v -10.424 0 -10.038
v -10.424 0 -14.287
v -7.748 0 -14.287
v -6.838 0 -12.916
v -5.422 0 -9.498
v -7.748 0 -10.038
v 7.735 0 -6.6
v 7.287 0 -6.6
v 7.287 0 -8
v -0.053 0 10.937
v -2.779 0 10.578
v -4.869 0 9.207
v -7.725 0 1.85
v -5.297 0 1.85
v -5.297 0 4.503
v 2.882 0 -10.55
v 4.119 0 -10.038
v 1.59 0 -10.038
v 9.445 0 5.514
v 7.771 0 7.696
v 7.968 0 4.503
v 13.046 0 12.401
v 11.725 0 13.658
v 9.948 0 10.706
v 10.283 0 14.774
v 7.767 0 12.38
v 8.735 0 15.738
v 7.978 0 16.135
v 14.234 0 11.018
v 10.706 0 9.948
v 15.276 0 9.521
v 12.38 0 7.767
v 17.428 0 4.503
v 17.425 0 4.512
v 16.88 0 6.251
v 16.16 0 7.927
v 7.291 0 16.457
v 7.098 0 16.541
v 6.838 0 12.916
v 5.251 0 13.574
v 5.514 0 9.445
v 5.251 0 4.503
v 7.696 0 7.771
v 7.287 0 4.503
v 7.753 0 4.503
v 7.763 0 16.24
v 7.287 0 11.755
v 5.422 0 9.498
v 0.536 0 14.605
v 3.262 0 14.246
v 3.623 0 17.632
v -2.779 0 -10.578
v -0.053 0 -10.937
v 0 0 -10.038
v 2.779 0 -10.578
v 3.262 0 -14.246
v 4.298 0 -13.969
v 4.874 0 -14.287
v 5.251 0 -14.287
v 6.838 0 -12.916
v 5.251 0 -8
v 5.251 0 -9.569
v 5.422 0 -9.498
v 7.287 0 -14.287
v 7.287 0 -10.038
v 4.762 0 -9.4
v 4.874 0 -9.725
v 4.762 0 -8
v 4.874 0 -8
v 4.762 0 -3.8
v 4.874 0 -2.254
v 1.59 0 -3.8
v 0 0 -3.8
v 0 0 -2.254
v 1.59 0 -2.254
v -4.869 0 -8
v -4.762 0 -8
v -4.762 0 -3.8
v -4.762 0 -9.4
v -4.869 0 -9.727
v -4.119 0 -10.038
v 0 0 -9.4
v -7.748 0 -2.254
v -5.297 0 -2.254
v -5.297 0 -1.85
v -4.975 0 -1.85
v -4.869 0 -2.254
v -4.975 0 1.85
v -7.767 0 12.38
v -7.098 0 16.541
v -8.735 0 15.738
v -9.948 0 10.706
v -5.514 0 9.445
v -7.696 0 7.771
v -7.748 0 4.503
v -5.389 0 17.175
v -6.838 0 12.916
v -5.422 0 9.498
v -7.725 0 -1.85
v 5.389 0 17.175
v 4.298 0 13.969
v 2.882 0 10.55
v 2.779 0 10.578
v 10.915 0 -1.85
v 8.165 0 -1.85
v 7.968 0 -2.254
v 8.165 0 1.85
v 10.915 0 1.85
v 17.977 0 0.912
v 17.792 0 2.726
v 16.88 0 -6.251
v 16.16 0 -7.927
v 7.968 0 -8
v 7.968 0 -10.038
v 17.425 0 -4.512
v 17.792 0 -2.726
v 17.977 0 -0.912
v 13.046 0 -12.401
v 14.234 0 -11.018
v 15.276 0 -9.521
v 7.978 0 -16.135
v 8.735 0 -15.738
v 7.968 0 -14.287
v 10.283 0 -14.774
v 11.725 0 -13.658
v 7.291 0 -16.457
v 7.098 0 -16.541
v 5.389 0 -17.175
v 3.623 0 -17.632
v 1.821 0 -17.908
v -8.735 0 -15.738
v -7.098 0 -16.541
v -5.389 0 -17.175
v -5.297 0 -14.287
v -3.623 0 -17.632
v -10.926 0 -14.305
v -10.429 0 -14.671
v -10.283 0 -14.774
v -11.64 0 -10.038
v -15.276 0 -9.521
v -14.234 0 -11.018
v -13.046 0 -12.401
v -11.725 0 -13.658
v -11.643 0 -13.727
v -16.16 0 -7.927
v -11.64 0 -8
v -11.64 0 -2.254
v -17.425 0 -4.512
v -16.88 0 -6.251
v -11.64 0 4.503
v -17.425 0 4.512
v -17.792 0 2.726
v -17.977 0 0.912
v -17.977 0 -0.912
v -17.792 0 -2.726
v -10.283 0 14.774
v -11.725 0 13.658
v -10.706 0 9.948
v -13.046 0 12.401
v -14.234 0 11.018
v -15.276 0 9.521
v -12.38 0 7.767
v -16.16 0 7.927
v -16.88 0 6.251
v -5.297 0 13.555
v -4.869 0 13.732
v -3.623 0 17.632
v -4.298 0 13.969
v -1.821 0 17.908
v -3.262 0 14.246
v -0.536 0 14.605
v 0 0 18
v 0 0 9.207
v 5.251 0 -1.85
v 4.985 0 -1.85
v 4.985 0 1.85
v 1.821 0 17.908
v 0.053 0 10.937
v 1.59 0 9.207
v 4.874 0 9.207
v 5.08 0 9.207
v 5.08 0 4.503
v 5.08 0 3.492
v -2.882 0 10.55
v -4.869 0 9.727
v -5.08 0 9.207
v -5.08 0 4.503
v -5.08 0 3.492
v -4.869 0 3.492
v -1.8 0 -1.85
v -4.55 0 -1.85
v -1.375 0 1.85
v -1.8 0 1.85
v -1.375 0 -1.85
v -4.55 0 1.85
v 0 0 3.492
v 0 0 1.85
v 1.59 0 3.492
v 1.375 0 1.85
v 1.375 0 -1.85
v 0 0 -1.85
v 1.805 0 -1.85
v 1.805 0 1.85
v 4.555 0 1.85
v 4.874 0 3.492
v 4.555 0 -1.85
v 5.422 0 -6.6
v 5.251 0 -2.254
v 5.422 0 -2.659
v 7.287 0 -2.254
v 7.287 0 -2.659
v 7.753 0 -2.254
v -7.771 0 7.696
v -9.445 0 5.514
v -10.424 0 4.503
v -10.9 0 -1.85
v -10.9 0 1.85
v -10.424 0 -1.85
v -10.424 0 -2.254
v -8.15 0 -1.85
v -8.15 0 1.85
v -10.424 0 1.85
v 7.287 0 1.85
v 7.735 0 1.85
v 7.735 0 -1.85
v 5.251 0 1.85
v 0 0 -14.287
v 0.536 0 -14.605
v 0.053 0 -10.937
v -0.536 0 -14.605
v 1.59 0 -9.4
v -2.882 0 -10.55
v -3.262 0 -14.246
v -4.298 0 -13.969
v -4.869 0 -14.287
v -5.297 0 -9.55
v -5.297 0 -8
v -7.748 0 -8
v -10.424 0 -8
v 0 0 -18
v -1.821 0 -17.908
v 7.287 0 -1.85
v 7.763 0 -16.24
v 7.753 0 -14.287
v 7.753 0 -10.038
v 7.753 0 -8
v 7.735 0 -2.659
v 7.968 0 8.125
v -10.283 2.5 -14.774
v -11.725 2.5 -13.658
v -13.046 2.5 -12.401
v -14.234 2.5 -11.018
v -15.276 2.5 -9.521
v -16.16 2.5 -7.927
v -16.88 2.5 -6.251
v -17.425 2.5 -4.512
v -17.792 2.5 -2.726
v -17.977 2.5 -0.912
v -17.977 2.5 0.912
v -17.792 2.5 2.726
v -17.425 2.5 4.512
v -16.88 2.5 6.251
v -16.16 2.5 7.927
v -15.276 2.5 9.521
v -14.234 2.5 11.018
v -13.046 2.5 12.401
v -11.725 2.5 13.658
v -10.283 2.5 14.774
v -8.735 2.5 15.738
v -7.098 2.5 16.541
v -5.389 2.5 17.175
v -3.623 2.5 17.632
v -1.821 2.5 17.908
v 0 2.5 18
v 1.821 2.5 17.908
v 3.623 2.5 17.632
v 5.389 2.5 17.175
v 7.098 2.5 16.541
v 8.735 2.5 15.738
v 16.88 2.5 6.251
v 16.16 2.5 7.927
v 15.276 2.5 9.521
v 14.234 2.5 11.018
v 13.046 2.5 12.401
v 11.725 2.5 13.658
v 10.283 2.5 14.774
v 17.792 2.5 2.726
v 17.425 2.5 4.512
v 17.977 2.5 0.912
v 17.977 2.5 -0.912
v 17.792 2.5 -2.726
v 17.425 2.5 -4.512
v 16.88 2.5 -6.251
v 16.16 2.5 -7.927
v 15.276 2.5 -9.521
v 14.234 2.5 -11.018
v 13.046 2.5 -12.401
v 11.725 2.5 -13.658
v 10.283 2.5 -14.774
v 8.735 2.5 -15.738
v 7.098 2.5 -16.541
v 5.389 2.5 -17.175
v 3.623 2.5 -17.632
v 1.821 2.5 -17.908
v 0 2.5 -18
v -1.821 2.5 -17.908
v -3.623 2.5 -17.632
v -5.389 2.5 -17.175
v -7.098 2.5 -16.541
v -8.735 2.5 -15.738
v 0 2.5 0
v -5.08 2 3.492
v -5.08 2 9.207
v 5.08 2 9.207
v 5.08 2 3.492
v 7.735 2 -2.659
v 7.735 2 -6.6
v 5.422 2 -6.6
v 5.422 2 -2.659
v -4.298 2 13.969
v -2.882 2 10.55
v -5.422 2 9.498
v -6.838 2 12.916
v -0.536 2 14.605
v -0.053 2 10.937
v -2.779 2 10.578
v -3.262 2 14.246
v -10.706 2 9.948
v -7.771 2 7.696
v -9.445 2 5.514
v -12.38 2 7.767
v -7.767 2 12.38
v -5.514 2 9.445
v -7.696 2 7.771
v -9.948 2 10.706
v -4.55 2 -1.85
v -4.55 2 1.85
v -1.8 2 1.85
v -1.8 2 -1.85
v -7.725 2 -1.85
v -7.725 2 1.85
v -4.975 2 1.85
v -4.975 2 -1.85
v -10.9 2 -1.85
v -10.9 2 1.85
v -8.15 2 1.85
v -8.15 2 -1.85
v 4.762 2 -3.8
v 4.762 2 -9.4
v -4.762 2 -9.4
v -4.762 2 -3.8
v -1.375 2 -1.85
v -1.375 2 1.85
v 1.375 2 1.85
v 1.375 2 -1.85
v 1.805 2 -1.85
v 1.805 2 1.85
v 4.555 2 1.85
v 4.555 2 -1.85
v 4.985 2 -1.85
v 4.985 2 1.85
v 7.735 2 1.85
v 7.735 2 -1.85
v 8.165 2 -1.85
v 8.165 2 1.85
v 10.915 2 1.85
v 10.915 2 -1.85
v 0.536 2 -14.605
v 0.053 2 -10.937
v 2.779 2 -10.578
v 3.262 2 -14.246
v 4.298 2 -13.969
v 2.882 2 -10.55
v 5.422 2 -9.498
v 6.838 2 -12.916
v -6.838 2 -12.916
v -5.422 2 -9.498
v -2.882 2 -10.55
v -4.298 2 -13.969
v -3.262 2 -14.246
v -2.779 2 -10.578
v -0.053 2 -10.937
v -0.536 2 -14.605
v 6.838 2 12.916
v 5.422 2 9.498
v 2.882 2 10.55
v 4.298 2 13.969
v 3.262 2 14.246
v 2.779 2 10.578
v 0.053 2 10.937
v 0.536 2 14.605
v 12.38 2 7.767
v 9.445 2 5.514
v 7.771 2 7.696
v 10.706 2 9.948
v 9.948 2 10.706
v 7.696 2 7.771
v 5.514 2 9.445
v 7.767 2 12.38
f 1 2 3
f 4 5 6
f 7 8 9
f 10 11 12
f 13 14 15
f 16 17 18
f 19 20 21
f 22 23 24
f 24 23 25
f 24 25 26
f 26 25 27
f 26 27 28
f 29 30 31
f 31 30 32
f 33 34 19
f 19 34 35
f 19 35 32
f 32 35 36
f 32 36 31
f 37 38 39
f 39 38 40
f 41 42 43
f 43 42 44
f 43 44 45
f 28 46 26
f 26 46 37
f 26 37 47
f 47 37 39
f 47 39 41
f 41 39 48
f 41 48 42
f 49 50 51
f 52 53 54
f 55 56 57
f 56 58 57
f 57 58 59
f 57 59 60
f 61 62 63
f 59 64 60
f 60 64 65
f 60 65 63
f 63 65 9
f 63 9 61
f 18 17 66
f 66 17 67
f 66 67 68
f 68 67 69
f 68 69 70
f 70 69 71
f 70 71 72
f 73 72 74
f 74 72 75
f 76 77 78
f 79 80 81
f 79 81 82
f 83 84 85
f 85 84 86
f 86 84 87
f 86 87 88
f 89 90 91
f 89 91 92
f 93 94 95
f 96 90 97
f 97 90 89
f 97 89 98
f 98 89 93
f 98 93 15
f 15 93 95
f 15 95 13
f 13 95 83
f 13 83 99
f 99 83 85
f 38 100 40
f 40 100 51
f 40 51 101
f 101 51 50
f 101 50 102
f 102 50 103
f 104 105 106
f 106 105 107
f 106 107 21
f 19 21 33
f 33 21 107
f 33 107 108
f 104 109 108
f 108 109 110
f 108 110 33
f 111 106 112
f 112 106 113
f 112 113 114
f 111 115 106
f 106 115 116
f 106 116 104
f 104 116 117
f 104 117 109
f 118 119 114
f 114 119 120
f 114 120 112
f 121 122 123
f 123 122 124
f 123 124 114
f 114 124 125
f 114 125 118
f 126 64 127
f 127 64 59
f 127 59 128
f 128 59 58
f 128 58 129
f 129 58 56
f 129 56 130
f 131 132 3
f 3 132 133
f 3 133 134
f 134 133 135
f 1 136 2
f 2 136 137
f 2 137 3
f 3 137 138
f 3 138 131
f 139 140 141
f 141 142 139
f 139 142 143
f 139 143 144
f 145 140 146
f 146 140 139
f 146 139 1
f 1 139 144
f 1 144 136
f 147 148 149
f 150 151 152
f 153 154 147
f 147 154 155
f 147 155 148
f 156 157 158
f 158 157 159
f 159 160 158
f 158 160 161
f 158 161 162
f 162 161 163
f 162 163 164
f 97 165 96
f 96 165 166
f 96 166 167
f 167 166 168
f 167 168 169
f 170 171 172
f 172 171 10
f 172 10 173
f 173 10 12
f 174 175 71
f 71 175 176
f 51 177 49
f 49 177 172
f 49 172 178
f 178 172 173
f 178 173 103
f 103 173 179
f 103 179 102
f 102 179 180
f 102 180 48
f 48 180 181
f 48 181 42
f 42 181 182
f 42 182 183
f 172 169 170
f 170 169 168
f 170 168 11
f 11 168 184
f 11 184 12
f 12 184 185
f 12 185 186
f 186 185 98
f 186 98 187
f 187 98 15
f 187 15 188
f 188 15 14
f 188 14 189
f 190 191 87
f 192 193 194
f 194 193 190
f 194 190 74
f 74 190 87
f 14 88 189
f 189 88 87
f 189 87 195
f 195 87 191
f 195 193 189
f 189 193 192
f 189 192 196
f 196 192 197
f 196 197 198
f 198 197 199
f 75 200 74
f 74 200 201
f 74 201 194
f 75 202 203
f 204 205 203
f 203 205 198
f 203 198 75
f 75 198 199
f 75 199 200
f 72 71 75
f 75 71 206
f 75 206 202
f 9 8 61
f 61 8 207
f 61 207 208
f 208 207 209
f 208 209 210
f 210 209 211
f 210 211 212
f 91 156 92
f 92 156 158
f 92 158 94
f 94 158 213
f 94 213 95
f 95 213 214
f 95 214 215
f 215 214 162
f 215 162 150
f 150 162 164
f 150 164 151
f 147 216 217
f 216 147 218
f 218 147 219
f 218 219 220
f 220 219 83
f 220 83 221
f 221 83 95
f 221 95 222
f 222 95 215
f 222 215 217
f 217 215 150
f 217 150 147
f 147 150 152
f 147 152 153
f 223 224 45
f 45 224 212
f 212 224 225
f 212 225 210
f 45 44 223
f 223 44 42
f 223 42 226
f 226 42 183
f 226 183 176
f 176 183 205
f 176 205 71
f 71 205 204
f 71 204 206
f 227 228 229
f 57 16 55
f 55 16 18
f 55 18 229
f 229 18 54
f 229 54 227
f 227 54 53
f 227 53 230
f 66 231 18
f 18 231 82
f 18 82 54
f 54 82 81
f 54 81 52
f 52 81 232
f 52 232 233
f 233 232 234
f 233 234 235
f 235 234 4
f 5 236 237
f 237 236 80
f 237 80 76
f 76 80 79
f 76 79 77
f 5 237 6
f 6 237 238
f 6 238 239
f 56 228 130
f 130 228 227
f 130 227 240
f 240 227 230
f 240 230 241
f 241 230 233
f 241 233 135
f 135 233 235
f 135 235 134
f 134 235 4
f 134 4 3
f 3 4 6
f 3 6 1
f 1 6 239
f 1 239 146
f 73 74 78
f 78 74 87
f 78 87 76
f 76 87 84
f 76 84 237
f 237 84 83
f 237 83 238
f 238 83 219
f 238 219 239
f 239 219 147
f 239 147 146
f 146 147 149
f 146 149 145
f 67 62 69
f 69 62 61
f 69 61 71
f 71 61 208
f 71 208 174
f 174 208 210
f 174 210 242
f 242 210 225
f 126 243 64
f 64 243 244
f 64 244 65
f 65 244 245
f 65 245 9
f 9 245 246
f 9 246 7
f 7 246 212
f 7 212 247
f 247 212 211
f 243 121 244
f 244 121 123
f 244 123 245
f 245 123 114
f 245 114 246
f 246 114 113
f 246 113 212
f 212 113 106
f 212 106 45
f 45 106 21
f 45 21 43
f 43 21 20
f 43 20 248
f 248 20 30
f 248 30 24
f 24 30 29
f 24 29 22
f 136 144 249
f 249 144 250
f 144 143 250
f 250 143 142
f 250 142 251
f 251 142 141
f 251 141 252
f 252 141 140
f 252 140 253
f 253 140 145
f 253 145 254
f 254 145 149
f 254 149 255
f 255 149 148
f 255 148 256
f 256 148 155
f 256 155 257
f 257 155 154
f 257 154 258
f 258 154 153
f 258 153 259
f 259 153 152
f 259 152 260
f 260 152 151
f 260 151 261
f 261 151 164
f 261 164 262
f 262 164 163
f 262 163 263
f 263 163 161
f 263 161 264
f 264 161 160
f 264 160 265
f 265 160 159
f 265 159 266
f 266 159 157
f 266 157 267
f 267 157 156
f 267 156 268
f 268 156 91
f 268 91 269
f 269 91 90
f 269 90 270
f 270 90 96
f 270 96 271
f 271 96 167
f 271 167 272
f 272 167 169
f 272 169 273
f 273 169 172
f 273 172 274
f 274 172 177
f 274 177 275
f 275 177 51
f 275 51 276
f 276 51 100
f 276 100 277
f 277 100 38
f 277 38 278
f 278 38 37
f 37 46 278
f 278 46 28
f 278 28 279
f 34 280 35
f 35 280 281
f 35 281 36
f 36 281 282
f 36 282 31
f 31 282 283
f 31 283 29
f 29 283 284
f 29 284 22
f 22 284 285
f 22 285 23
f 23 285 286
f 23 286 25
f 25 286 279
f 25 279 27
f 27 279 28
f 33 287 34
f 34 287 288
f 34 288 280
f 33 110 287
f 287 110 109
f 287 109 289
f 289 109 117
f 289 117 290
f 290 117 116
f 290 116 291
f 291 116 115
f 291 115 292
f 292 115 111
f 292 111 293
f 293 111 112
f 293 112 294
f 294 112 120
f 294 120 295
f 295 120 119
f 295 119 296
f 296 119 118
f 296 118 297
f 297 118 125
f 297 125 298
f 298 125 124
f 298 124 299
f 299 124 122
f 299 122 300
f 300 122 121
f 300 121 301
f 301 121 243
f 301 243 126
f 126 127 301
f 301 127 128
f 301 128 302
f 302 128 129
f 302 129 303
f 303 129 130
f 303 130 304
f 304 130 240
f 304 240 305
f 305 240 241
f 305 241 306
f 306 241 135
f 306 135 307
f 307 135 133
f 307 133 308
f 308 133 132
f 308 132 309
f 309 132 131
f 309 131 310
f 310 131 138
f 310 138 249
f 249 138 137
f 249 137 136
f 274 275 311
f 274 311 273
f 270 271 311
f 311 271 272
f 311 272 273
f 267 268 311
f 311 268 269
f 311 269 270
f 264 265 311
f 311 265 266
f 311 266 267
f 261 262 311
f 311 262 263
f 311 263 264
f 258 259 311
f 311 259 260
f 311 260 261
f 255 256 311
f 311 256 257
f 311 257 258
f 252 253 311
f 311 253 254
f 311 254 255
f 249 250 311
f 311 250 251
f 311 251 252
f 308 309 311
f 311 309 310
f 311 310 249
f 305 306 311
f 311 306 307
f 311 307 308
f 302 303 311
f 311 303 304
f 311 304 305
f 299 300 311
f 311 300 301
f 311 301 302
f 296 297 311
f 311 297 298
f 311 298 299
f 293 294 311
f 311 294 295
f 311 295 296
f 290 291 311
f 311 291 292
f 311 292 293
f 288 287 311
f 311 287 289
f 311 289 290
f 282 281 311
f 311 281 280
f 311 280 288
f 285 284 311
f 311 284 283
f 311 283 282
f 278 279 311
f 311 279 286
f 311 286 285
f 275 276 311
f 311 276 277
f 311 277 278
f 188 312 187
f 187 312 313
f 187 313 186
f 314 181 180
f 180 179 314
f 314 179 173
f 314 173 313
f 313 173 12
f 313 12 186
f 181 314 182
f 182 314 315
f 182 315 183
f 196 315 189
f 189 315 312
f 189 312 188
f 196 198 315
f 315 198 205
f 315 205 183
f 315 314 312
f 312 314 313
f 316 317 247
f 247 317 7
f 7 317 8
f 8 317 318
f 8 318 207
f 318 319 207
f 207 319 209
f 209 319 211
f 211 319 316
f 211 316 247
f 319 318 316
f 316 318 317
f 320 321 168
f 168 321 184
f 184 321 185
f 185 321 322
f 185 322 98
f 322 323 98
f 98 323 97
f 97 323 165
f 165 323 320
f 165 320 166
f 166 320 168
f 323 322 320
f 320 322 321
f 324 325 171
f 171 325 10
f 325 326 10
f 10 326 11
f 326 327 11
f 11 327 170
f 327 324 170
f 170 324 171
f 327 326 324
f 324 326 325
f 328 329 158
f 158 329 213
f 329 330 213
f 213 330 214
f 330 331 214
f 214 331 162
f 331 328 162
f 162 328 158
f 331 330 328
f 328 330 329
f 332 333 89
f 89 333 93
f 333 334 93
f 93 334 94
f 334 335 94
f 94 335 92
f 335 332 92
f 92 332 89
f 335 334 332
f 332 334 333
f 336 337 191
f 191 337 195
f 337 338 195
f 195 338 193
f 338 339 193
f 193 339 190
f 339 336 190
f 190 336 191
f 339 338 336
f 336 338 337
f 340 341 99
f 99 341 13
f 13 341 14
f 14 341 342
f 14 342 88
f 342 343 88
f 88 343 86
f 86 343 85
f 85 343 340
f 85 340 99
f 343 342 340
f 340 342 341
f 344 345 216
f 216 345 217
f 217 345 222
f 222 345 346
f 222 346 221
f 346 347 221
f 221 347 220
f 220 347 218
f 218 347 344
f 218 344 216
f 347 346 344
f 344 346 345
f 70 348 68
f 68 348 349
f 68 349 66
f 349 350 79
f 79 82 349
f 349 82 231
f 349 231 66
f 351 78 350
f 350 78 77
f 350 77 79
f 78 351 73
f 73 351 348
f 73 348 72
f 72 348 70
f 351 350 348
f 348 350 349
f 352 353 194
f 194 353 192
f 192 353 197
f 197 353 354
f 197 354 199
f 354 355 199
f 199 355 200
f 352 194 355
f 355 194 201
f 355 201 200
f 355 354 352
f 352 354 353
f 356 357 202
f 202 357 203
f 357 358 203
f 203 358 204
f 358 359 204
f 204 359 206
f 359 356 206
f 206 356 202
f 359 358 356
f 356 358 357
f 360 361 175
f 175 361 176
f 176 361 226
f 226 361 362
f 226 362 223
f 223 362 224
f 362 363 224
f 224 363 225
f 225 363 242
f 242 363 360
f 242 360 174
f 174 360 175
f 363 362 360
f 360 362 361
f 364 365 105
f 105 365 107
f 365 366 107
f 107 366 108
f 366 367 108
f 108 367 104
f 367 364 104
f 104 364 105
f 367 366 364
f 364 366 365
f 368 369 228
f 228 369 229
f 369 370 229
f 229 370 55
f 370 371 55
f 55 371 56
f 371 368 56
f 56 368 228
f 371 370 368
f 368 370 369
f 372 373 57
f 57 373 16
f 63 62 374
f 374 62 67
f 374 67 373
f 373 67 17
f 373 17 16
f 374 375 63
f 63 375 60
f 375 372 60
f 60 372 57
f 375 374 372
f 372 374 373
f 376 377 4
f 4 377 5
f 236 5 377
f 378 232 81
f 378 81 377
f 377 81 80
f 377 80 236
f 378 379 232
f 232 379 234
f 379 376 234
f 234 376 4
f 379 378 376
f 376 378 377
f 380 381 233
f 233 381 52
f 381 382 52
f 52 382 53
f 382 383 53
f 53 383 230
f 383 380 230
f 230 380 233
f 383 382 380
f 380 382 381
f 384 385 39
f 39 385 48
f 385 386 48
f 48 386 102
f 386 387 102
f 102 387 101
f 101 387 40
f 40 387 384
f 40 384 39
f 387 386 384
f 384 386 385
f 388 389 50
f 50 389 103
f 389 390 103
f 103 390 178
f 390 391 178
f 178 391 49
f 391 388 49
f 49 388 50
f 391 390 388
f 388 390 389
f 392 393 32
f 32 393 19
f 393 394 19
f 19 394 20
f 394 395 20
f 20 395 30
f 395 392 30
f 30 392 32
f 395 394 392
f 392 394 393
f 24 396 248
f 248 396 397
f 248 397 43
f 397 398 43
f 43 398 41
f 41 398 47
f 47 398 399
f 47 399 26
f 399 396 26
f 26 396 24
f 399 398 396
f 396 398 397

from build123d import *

# Parameters (mm, degrees)
SKETCH1_R                = 18
BOSS_EXTRUDE1_DEPTH      = 2.5
CUT_EXTRUDE4_OUTLINE_W   = 10.16
CUT_EXTRUDE4_OUTLINE_H   = 5.715
CUT_EXTRUDE4_OUTLINE_W_2 = 2.312550402
CUT_EXTRUDE4_OUTLINE_H_2 = 3.94124845
CUT_EXTRUDE4_OUTLINE_W_3 = 2.75
CUT_EXTRUDE4_OUTLINE_H_3 = 3.7
CUT_EXTRUDE4_OUTLINE_W_4 = 9.525
CUT_EXTRUDE4_OUTLINE_H_4 = 5.6
CUT_EXTRUDE4_DEPTH       = 2


# Read off the part's stored shape, not the designer's step: Cut-Extrude4
with BuildPart() as part:
    # Sketch1 → Boss-Extrude1 (new body)
    with BuildSketch(Plane(origin=(0, 0, 0), x_dir=(1, 0, 0), z_dir=(0, 1, 0))):
        with Locations(Location((0, 0, 0), (0, 0, 270))):
            Circle(SKETCH1_R)
    extrude(amount=BOSS_EXTRUDE1_DEPTH)

    # Cut-Extrude4 outline → Cut-Extrude4 (cut)
    with BuildSketch(Plane(origin=(0, 0, 0), x_dir=(1, 0, 0), z_dir=(0, 1, 0))):
        with Locations((0, -6.35)):
            Rectangle(CUT_EXTRUDE4_OUTLINE_W, CUT_EXTRUDE4_OUTLINE_H)
        with Locations((6.578724799, 4.629375775)):
            Rectangle(CUT_EXTRUDE4_OUTLINE_W_2, CUT_EXTRUDE4_OUTLINE_H_2)
        with Locations((6.36, 0)):
            Rectangle(CUT_EXTRUDE4_OUTLINE_W_3, CUT_EXTRUDE4_OUTLINE_H_3)
        Polygon((-4.297709584, -13.968636918), (-2.881780884, -10.550282647), (-5.422449598, -9.497903208), (-6.838378298, -12.916257479), align=None)
        Polygon((2.881780884, 10.550282647), (5.422449598, 9.497903208), (6.838378298, 12.916257479), (4.297709584, 13.968636918), align=None)
        Polygon((-0.535919412, -14.604996247), (-0.052972501, -10.93665026), (-2.77944587, -10.577703232), (-3.262392781, -14.246049219), align=None)
        Polygon((0.052972501, 10.93665026), (2.77944587, 10.577703232), (3.262392781, 14.246049219), (0.535919412, 14.604996247), align=None)
        Polygon((-10.706244136, -9.948339635), (-7.770836777, -7.695922348), (-9.444930707, -5.514200662), (-12.380338066, -7.766617949), align=None)
        Polygon((-7.766617949, -12.380338066), (-5.514200662, -9.444930707), (-7.695922348, -7.770836777), (-9.948339635, -10.706244136), align=None)
        with Locations((-3.175, 0)):
            Rectangle(CUT_EXTRUDE4_OUTLINE_W_3, CUT_EXTRUDE4_OUTLINE_H_3)
        with Locations((-6.35, 0)):
            Rectangle(CUT_EXTRUDE4_OUTLINE_W_3, CUT_EXTRUDE4_OUTLINE_H_3)
        with Locations((-9.525, 0)):
            Rectangle(CUT_EXTRUDE4_OUTLINE_W_3, CUT_EXTRUDE4_OUTLINE_H_3)
        Rectangle(CUT_EXTRUDE4_OUTLINE_W_3, CUT_EXTRUDE4_OUTLINE_H_3)
        with Locations((3.18, 0)):
            Rectangle(CUT_EXTRUDE4_OUTLINE_W_3, CUT_EXTRUDE4_OUTLINE_H_3)
        with Locations((9.54, 0)):
            Rectangle(CUT_EXTRUDE4_OUTLINE_W_3, CUT_EXTRUDE4_OUTLINE_H_3)
        with Locations((0, 6.6)):
            Rectangle(CUT_EXTRUDE4_OUTLINE_W_4, CUT_EXTRUDE4_OUTLINE_H_4)
        Polygon((-6.838378298, 12.916257479), (-5.422449598, 9.497903208), (-2.881780884, 10.550282647), (-4.297709584, 13.968636918), align=None)
        Polygon((5.422449598, -9.497903208), (2.881780884, -10.550282647), (4.297709584, -13.968636918), (6.838378298, -12.916257479), align=None)
        Polygon((-3.262392781, 14.246049219), (-2.77944587, 10.577703232), (-0.052972501, 10.93665026), (-0.535919412, 14.604996247), align=None)
        Polygon((2.77944587, -10.577703232), (0.052972501, -10.93665026), (0.535919412, -14.604996247), (3.262392781, -14.246049219), align=None)
        Polygon((12.380338066, -7.766617949), (9.444930707, -5.514200662), (7.770836777, -7.695922348), (10.706244136, -9.948339635), align=None)
        Polygon((9.948339635, -10.706244136), (7.695922348, -7.770836777), (5.514200662, -9.444930707), (7.766617949, -12.380338066), align=None)
    extrude(amount=CUT_EXTRUDE4_DEPTH, mode=Mode.SUBTRACT)


solid = part.part
